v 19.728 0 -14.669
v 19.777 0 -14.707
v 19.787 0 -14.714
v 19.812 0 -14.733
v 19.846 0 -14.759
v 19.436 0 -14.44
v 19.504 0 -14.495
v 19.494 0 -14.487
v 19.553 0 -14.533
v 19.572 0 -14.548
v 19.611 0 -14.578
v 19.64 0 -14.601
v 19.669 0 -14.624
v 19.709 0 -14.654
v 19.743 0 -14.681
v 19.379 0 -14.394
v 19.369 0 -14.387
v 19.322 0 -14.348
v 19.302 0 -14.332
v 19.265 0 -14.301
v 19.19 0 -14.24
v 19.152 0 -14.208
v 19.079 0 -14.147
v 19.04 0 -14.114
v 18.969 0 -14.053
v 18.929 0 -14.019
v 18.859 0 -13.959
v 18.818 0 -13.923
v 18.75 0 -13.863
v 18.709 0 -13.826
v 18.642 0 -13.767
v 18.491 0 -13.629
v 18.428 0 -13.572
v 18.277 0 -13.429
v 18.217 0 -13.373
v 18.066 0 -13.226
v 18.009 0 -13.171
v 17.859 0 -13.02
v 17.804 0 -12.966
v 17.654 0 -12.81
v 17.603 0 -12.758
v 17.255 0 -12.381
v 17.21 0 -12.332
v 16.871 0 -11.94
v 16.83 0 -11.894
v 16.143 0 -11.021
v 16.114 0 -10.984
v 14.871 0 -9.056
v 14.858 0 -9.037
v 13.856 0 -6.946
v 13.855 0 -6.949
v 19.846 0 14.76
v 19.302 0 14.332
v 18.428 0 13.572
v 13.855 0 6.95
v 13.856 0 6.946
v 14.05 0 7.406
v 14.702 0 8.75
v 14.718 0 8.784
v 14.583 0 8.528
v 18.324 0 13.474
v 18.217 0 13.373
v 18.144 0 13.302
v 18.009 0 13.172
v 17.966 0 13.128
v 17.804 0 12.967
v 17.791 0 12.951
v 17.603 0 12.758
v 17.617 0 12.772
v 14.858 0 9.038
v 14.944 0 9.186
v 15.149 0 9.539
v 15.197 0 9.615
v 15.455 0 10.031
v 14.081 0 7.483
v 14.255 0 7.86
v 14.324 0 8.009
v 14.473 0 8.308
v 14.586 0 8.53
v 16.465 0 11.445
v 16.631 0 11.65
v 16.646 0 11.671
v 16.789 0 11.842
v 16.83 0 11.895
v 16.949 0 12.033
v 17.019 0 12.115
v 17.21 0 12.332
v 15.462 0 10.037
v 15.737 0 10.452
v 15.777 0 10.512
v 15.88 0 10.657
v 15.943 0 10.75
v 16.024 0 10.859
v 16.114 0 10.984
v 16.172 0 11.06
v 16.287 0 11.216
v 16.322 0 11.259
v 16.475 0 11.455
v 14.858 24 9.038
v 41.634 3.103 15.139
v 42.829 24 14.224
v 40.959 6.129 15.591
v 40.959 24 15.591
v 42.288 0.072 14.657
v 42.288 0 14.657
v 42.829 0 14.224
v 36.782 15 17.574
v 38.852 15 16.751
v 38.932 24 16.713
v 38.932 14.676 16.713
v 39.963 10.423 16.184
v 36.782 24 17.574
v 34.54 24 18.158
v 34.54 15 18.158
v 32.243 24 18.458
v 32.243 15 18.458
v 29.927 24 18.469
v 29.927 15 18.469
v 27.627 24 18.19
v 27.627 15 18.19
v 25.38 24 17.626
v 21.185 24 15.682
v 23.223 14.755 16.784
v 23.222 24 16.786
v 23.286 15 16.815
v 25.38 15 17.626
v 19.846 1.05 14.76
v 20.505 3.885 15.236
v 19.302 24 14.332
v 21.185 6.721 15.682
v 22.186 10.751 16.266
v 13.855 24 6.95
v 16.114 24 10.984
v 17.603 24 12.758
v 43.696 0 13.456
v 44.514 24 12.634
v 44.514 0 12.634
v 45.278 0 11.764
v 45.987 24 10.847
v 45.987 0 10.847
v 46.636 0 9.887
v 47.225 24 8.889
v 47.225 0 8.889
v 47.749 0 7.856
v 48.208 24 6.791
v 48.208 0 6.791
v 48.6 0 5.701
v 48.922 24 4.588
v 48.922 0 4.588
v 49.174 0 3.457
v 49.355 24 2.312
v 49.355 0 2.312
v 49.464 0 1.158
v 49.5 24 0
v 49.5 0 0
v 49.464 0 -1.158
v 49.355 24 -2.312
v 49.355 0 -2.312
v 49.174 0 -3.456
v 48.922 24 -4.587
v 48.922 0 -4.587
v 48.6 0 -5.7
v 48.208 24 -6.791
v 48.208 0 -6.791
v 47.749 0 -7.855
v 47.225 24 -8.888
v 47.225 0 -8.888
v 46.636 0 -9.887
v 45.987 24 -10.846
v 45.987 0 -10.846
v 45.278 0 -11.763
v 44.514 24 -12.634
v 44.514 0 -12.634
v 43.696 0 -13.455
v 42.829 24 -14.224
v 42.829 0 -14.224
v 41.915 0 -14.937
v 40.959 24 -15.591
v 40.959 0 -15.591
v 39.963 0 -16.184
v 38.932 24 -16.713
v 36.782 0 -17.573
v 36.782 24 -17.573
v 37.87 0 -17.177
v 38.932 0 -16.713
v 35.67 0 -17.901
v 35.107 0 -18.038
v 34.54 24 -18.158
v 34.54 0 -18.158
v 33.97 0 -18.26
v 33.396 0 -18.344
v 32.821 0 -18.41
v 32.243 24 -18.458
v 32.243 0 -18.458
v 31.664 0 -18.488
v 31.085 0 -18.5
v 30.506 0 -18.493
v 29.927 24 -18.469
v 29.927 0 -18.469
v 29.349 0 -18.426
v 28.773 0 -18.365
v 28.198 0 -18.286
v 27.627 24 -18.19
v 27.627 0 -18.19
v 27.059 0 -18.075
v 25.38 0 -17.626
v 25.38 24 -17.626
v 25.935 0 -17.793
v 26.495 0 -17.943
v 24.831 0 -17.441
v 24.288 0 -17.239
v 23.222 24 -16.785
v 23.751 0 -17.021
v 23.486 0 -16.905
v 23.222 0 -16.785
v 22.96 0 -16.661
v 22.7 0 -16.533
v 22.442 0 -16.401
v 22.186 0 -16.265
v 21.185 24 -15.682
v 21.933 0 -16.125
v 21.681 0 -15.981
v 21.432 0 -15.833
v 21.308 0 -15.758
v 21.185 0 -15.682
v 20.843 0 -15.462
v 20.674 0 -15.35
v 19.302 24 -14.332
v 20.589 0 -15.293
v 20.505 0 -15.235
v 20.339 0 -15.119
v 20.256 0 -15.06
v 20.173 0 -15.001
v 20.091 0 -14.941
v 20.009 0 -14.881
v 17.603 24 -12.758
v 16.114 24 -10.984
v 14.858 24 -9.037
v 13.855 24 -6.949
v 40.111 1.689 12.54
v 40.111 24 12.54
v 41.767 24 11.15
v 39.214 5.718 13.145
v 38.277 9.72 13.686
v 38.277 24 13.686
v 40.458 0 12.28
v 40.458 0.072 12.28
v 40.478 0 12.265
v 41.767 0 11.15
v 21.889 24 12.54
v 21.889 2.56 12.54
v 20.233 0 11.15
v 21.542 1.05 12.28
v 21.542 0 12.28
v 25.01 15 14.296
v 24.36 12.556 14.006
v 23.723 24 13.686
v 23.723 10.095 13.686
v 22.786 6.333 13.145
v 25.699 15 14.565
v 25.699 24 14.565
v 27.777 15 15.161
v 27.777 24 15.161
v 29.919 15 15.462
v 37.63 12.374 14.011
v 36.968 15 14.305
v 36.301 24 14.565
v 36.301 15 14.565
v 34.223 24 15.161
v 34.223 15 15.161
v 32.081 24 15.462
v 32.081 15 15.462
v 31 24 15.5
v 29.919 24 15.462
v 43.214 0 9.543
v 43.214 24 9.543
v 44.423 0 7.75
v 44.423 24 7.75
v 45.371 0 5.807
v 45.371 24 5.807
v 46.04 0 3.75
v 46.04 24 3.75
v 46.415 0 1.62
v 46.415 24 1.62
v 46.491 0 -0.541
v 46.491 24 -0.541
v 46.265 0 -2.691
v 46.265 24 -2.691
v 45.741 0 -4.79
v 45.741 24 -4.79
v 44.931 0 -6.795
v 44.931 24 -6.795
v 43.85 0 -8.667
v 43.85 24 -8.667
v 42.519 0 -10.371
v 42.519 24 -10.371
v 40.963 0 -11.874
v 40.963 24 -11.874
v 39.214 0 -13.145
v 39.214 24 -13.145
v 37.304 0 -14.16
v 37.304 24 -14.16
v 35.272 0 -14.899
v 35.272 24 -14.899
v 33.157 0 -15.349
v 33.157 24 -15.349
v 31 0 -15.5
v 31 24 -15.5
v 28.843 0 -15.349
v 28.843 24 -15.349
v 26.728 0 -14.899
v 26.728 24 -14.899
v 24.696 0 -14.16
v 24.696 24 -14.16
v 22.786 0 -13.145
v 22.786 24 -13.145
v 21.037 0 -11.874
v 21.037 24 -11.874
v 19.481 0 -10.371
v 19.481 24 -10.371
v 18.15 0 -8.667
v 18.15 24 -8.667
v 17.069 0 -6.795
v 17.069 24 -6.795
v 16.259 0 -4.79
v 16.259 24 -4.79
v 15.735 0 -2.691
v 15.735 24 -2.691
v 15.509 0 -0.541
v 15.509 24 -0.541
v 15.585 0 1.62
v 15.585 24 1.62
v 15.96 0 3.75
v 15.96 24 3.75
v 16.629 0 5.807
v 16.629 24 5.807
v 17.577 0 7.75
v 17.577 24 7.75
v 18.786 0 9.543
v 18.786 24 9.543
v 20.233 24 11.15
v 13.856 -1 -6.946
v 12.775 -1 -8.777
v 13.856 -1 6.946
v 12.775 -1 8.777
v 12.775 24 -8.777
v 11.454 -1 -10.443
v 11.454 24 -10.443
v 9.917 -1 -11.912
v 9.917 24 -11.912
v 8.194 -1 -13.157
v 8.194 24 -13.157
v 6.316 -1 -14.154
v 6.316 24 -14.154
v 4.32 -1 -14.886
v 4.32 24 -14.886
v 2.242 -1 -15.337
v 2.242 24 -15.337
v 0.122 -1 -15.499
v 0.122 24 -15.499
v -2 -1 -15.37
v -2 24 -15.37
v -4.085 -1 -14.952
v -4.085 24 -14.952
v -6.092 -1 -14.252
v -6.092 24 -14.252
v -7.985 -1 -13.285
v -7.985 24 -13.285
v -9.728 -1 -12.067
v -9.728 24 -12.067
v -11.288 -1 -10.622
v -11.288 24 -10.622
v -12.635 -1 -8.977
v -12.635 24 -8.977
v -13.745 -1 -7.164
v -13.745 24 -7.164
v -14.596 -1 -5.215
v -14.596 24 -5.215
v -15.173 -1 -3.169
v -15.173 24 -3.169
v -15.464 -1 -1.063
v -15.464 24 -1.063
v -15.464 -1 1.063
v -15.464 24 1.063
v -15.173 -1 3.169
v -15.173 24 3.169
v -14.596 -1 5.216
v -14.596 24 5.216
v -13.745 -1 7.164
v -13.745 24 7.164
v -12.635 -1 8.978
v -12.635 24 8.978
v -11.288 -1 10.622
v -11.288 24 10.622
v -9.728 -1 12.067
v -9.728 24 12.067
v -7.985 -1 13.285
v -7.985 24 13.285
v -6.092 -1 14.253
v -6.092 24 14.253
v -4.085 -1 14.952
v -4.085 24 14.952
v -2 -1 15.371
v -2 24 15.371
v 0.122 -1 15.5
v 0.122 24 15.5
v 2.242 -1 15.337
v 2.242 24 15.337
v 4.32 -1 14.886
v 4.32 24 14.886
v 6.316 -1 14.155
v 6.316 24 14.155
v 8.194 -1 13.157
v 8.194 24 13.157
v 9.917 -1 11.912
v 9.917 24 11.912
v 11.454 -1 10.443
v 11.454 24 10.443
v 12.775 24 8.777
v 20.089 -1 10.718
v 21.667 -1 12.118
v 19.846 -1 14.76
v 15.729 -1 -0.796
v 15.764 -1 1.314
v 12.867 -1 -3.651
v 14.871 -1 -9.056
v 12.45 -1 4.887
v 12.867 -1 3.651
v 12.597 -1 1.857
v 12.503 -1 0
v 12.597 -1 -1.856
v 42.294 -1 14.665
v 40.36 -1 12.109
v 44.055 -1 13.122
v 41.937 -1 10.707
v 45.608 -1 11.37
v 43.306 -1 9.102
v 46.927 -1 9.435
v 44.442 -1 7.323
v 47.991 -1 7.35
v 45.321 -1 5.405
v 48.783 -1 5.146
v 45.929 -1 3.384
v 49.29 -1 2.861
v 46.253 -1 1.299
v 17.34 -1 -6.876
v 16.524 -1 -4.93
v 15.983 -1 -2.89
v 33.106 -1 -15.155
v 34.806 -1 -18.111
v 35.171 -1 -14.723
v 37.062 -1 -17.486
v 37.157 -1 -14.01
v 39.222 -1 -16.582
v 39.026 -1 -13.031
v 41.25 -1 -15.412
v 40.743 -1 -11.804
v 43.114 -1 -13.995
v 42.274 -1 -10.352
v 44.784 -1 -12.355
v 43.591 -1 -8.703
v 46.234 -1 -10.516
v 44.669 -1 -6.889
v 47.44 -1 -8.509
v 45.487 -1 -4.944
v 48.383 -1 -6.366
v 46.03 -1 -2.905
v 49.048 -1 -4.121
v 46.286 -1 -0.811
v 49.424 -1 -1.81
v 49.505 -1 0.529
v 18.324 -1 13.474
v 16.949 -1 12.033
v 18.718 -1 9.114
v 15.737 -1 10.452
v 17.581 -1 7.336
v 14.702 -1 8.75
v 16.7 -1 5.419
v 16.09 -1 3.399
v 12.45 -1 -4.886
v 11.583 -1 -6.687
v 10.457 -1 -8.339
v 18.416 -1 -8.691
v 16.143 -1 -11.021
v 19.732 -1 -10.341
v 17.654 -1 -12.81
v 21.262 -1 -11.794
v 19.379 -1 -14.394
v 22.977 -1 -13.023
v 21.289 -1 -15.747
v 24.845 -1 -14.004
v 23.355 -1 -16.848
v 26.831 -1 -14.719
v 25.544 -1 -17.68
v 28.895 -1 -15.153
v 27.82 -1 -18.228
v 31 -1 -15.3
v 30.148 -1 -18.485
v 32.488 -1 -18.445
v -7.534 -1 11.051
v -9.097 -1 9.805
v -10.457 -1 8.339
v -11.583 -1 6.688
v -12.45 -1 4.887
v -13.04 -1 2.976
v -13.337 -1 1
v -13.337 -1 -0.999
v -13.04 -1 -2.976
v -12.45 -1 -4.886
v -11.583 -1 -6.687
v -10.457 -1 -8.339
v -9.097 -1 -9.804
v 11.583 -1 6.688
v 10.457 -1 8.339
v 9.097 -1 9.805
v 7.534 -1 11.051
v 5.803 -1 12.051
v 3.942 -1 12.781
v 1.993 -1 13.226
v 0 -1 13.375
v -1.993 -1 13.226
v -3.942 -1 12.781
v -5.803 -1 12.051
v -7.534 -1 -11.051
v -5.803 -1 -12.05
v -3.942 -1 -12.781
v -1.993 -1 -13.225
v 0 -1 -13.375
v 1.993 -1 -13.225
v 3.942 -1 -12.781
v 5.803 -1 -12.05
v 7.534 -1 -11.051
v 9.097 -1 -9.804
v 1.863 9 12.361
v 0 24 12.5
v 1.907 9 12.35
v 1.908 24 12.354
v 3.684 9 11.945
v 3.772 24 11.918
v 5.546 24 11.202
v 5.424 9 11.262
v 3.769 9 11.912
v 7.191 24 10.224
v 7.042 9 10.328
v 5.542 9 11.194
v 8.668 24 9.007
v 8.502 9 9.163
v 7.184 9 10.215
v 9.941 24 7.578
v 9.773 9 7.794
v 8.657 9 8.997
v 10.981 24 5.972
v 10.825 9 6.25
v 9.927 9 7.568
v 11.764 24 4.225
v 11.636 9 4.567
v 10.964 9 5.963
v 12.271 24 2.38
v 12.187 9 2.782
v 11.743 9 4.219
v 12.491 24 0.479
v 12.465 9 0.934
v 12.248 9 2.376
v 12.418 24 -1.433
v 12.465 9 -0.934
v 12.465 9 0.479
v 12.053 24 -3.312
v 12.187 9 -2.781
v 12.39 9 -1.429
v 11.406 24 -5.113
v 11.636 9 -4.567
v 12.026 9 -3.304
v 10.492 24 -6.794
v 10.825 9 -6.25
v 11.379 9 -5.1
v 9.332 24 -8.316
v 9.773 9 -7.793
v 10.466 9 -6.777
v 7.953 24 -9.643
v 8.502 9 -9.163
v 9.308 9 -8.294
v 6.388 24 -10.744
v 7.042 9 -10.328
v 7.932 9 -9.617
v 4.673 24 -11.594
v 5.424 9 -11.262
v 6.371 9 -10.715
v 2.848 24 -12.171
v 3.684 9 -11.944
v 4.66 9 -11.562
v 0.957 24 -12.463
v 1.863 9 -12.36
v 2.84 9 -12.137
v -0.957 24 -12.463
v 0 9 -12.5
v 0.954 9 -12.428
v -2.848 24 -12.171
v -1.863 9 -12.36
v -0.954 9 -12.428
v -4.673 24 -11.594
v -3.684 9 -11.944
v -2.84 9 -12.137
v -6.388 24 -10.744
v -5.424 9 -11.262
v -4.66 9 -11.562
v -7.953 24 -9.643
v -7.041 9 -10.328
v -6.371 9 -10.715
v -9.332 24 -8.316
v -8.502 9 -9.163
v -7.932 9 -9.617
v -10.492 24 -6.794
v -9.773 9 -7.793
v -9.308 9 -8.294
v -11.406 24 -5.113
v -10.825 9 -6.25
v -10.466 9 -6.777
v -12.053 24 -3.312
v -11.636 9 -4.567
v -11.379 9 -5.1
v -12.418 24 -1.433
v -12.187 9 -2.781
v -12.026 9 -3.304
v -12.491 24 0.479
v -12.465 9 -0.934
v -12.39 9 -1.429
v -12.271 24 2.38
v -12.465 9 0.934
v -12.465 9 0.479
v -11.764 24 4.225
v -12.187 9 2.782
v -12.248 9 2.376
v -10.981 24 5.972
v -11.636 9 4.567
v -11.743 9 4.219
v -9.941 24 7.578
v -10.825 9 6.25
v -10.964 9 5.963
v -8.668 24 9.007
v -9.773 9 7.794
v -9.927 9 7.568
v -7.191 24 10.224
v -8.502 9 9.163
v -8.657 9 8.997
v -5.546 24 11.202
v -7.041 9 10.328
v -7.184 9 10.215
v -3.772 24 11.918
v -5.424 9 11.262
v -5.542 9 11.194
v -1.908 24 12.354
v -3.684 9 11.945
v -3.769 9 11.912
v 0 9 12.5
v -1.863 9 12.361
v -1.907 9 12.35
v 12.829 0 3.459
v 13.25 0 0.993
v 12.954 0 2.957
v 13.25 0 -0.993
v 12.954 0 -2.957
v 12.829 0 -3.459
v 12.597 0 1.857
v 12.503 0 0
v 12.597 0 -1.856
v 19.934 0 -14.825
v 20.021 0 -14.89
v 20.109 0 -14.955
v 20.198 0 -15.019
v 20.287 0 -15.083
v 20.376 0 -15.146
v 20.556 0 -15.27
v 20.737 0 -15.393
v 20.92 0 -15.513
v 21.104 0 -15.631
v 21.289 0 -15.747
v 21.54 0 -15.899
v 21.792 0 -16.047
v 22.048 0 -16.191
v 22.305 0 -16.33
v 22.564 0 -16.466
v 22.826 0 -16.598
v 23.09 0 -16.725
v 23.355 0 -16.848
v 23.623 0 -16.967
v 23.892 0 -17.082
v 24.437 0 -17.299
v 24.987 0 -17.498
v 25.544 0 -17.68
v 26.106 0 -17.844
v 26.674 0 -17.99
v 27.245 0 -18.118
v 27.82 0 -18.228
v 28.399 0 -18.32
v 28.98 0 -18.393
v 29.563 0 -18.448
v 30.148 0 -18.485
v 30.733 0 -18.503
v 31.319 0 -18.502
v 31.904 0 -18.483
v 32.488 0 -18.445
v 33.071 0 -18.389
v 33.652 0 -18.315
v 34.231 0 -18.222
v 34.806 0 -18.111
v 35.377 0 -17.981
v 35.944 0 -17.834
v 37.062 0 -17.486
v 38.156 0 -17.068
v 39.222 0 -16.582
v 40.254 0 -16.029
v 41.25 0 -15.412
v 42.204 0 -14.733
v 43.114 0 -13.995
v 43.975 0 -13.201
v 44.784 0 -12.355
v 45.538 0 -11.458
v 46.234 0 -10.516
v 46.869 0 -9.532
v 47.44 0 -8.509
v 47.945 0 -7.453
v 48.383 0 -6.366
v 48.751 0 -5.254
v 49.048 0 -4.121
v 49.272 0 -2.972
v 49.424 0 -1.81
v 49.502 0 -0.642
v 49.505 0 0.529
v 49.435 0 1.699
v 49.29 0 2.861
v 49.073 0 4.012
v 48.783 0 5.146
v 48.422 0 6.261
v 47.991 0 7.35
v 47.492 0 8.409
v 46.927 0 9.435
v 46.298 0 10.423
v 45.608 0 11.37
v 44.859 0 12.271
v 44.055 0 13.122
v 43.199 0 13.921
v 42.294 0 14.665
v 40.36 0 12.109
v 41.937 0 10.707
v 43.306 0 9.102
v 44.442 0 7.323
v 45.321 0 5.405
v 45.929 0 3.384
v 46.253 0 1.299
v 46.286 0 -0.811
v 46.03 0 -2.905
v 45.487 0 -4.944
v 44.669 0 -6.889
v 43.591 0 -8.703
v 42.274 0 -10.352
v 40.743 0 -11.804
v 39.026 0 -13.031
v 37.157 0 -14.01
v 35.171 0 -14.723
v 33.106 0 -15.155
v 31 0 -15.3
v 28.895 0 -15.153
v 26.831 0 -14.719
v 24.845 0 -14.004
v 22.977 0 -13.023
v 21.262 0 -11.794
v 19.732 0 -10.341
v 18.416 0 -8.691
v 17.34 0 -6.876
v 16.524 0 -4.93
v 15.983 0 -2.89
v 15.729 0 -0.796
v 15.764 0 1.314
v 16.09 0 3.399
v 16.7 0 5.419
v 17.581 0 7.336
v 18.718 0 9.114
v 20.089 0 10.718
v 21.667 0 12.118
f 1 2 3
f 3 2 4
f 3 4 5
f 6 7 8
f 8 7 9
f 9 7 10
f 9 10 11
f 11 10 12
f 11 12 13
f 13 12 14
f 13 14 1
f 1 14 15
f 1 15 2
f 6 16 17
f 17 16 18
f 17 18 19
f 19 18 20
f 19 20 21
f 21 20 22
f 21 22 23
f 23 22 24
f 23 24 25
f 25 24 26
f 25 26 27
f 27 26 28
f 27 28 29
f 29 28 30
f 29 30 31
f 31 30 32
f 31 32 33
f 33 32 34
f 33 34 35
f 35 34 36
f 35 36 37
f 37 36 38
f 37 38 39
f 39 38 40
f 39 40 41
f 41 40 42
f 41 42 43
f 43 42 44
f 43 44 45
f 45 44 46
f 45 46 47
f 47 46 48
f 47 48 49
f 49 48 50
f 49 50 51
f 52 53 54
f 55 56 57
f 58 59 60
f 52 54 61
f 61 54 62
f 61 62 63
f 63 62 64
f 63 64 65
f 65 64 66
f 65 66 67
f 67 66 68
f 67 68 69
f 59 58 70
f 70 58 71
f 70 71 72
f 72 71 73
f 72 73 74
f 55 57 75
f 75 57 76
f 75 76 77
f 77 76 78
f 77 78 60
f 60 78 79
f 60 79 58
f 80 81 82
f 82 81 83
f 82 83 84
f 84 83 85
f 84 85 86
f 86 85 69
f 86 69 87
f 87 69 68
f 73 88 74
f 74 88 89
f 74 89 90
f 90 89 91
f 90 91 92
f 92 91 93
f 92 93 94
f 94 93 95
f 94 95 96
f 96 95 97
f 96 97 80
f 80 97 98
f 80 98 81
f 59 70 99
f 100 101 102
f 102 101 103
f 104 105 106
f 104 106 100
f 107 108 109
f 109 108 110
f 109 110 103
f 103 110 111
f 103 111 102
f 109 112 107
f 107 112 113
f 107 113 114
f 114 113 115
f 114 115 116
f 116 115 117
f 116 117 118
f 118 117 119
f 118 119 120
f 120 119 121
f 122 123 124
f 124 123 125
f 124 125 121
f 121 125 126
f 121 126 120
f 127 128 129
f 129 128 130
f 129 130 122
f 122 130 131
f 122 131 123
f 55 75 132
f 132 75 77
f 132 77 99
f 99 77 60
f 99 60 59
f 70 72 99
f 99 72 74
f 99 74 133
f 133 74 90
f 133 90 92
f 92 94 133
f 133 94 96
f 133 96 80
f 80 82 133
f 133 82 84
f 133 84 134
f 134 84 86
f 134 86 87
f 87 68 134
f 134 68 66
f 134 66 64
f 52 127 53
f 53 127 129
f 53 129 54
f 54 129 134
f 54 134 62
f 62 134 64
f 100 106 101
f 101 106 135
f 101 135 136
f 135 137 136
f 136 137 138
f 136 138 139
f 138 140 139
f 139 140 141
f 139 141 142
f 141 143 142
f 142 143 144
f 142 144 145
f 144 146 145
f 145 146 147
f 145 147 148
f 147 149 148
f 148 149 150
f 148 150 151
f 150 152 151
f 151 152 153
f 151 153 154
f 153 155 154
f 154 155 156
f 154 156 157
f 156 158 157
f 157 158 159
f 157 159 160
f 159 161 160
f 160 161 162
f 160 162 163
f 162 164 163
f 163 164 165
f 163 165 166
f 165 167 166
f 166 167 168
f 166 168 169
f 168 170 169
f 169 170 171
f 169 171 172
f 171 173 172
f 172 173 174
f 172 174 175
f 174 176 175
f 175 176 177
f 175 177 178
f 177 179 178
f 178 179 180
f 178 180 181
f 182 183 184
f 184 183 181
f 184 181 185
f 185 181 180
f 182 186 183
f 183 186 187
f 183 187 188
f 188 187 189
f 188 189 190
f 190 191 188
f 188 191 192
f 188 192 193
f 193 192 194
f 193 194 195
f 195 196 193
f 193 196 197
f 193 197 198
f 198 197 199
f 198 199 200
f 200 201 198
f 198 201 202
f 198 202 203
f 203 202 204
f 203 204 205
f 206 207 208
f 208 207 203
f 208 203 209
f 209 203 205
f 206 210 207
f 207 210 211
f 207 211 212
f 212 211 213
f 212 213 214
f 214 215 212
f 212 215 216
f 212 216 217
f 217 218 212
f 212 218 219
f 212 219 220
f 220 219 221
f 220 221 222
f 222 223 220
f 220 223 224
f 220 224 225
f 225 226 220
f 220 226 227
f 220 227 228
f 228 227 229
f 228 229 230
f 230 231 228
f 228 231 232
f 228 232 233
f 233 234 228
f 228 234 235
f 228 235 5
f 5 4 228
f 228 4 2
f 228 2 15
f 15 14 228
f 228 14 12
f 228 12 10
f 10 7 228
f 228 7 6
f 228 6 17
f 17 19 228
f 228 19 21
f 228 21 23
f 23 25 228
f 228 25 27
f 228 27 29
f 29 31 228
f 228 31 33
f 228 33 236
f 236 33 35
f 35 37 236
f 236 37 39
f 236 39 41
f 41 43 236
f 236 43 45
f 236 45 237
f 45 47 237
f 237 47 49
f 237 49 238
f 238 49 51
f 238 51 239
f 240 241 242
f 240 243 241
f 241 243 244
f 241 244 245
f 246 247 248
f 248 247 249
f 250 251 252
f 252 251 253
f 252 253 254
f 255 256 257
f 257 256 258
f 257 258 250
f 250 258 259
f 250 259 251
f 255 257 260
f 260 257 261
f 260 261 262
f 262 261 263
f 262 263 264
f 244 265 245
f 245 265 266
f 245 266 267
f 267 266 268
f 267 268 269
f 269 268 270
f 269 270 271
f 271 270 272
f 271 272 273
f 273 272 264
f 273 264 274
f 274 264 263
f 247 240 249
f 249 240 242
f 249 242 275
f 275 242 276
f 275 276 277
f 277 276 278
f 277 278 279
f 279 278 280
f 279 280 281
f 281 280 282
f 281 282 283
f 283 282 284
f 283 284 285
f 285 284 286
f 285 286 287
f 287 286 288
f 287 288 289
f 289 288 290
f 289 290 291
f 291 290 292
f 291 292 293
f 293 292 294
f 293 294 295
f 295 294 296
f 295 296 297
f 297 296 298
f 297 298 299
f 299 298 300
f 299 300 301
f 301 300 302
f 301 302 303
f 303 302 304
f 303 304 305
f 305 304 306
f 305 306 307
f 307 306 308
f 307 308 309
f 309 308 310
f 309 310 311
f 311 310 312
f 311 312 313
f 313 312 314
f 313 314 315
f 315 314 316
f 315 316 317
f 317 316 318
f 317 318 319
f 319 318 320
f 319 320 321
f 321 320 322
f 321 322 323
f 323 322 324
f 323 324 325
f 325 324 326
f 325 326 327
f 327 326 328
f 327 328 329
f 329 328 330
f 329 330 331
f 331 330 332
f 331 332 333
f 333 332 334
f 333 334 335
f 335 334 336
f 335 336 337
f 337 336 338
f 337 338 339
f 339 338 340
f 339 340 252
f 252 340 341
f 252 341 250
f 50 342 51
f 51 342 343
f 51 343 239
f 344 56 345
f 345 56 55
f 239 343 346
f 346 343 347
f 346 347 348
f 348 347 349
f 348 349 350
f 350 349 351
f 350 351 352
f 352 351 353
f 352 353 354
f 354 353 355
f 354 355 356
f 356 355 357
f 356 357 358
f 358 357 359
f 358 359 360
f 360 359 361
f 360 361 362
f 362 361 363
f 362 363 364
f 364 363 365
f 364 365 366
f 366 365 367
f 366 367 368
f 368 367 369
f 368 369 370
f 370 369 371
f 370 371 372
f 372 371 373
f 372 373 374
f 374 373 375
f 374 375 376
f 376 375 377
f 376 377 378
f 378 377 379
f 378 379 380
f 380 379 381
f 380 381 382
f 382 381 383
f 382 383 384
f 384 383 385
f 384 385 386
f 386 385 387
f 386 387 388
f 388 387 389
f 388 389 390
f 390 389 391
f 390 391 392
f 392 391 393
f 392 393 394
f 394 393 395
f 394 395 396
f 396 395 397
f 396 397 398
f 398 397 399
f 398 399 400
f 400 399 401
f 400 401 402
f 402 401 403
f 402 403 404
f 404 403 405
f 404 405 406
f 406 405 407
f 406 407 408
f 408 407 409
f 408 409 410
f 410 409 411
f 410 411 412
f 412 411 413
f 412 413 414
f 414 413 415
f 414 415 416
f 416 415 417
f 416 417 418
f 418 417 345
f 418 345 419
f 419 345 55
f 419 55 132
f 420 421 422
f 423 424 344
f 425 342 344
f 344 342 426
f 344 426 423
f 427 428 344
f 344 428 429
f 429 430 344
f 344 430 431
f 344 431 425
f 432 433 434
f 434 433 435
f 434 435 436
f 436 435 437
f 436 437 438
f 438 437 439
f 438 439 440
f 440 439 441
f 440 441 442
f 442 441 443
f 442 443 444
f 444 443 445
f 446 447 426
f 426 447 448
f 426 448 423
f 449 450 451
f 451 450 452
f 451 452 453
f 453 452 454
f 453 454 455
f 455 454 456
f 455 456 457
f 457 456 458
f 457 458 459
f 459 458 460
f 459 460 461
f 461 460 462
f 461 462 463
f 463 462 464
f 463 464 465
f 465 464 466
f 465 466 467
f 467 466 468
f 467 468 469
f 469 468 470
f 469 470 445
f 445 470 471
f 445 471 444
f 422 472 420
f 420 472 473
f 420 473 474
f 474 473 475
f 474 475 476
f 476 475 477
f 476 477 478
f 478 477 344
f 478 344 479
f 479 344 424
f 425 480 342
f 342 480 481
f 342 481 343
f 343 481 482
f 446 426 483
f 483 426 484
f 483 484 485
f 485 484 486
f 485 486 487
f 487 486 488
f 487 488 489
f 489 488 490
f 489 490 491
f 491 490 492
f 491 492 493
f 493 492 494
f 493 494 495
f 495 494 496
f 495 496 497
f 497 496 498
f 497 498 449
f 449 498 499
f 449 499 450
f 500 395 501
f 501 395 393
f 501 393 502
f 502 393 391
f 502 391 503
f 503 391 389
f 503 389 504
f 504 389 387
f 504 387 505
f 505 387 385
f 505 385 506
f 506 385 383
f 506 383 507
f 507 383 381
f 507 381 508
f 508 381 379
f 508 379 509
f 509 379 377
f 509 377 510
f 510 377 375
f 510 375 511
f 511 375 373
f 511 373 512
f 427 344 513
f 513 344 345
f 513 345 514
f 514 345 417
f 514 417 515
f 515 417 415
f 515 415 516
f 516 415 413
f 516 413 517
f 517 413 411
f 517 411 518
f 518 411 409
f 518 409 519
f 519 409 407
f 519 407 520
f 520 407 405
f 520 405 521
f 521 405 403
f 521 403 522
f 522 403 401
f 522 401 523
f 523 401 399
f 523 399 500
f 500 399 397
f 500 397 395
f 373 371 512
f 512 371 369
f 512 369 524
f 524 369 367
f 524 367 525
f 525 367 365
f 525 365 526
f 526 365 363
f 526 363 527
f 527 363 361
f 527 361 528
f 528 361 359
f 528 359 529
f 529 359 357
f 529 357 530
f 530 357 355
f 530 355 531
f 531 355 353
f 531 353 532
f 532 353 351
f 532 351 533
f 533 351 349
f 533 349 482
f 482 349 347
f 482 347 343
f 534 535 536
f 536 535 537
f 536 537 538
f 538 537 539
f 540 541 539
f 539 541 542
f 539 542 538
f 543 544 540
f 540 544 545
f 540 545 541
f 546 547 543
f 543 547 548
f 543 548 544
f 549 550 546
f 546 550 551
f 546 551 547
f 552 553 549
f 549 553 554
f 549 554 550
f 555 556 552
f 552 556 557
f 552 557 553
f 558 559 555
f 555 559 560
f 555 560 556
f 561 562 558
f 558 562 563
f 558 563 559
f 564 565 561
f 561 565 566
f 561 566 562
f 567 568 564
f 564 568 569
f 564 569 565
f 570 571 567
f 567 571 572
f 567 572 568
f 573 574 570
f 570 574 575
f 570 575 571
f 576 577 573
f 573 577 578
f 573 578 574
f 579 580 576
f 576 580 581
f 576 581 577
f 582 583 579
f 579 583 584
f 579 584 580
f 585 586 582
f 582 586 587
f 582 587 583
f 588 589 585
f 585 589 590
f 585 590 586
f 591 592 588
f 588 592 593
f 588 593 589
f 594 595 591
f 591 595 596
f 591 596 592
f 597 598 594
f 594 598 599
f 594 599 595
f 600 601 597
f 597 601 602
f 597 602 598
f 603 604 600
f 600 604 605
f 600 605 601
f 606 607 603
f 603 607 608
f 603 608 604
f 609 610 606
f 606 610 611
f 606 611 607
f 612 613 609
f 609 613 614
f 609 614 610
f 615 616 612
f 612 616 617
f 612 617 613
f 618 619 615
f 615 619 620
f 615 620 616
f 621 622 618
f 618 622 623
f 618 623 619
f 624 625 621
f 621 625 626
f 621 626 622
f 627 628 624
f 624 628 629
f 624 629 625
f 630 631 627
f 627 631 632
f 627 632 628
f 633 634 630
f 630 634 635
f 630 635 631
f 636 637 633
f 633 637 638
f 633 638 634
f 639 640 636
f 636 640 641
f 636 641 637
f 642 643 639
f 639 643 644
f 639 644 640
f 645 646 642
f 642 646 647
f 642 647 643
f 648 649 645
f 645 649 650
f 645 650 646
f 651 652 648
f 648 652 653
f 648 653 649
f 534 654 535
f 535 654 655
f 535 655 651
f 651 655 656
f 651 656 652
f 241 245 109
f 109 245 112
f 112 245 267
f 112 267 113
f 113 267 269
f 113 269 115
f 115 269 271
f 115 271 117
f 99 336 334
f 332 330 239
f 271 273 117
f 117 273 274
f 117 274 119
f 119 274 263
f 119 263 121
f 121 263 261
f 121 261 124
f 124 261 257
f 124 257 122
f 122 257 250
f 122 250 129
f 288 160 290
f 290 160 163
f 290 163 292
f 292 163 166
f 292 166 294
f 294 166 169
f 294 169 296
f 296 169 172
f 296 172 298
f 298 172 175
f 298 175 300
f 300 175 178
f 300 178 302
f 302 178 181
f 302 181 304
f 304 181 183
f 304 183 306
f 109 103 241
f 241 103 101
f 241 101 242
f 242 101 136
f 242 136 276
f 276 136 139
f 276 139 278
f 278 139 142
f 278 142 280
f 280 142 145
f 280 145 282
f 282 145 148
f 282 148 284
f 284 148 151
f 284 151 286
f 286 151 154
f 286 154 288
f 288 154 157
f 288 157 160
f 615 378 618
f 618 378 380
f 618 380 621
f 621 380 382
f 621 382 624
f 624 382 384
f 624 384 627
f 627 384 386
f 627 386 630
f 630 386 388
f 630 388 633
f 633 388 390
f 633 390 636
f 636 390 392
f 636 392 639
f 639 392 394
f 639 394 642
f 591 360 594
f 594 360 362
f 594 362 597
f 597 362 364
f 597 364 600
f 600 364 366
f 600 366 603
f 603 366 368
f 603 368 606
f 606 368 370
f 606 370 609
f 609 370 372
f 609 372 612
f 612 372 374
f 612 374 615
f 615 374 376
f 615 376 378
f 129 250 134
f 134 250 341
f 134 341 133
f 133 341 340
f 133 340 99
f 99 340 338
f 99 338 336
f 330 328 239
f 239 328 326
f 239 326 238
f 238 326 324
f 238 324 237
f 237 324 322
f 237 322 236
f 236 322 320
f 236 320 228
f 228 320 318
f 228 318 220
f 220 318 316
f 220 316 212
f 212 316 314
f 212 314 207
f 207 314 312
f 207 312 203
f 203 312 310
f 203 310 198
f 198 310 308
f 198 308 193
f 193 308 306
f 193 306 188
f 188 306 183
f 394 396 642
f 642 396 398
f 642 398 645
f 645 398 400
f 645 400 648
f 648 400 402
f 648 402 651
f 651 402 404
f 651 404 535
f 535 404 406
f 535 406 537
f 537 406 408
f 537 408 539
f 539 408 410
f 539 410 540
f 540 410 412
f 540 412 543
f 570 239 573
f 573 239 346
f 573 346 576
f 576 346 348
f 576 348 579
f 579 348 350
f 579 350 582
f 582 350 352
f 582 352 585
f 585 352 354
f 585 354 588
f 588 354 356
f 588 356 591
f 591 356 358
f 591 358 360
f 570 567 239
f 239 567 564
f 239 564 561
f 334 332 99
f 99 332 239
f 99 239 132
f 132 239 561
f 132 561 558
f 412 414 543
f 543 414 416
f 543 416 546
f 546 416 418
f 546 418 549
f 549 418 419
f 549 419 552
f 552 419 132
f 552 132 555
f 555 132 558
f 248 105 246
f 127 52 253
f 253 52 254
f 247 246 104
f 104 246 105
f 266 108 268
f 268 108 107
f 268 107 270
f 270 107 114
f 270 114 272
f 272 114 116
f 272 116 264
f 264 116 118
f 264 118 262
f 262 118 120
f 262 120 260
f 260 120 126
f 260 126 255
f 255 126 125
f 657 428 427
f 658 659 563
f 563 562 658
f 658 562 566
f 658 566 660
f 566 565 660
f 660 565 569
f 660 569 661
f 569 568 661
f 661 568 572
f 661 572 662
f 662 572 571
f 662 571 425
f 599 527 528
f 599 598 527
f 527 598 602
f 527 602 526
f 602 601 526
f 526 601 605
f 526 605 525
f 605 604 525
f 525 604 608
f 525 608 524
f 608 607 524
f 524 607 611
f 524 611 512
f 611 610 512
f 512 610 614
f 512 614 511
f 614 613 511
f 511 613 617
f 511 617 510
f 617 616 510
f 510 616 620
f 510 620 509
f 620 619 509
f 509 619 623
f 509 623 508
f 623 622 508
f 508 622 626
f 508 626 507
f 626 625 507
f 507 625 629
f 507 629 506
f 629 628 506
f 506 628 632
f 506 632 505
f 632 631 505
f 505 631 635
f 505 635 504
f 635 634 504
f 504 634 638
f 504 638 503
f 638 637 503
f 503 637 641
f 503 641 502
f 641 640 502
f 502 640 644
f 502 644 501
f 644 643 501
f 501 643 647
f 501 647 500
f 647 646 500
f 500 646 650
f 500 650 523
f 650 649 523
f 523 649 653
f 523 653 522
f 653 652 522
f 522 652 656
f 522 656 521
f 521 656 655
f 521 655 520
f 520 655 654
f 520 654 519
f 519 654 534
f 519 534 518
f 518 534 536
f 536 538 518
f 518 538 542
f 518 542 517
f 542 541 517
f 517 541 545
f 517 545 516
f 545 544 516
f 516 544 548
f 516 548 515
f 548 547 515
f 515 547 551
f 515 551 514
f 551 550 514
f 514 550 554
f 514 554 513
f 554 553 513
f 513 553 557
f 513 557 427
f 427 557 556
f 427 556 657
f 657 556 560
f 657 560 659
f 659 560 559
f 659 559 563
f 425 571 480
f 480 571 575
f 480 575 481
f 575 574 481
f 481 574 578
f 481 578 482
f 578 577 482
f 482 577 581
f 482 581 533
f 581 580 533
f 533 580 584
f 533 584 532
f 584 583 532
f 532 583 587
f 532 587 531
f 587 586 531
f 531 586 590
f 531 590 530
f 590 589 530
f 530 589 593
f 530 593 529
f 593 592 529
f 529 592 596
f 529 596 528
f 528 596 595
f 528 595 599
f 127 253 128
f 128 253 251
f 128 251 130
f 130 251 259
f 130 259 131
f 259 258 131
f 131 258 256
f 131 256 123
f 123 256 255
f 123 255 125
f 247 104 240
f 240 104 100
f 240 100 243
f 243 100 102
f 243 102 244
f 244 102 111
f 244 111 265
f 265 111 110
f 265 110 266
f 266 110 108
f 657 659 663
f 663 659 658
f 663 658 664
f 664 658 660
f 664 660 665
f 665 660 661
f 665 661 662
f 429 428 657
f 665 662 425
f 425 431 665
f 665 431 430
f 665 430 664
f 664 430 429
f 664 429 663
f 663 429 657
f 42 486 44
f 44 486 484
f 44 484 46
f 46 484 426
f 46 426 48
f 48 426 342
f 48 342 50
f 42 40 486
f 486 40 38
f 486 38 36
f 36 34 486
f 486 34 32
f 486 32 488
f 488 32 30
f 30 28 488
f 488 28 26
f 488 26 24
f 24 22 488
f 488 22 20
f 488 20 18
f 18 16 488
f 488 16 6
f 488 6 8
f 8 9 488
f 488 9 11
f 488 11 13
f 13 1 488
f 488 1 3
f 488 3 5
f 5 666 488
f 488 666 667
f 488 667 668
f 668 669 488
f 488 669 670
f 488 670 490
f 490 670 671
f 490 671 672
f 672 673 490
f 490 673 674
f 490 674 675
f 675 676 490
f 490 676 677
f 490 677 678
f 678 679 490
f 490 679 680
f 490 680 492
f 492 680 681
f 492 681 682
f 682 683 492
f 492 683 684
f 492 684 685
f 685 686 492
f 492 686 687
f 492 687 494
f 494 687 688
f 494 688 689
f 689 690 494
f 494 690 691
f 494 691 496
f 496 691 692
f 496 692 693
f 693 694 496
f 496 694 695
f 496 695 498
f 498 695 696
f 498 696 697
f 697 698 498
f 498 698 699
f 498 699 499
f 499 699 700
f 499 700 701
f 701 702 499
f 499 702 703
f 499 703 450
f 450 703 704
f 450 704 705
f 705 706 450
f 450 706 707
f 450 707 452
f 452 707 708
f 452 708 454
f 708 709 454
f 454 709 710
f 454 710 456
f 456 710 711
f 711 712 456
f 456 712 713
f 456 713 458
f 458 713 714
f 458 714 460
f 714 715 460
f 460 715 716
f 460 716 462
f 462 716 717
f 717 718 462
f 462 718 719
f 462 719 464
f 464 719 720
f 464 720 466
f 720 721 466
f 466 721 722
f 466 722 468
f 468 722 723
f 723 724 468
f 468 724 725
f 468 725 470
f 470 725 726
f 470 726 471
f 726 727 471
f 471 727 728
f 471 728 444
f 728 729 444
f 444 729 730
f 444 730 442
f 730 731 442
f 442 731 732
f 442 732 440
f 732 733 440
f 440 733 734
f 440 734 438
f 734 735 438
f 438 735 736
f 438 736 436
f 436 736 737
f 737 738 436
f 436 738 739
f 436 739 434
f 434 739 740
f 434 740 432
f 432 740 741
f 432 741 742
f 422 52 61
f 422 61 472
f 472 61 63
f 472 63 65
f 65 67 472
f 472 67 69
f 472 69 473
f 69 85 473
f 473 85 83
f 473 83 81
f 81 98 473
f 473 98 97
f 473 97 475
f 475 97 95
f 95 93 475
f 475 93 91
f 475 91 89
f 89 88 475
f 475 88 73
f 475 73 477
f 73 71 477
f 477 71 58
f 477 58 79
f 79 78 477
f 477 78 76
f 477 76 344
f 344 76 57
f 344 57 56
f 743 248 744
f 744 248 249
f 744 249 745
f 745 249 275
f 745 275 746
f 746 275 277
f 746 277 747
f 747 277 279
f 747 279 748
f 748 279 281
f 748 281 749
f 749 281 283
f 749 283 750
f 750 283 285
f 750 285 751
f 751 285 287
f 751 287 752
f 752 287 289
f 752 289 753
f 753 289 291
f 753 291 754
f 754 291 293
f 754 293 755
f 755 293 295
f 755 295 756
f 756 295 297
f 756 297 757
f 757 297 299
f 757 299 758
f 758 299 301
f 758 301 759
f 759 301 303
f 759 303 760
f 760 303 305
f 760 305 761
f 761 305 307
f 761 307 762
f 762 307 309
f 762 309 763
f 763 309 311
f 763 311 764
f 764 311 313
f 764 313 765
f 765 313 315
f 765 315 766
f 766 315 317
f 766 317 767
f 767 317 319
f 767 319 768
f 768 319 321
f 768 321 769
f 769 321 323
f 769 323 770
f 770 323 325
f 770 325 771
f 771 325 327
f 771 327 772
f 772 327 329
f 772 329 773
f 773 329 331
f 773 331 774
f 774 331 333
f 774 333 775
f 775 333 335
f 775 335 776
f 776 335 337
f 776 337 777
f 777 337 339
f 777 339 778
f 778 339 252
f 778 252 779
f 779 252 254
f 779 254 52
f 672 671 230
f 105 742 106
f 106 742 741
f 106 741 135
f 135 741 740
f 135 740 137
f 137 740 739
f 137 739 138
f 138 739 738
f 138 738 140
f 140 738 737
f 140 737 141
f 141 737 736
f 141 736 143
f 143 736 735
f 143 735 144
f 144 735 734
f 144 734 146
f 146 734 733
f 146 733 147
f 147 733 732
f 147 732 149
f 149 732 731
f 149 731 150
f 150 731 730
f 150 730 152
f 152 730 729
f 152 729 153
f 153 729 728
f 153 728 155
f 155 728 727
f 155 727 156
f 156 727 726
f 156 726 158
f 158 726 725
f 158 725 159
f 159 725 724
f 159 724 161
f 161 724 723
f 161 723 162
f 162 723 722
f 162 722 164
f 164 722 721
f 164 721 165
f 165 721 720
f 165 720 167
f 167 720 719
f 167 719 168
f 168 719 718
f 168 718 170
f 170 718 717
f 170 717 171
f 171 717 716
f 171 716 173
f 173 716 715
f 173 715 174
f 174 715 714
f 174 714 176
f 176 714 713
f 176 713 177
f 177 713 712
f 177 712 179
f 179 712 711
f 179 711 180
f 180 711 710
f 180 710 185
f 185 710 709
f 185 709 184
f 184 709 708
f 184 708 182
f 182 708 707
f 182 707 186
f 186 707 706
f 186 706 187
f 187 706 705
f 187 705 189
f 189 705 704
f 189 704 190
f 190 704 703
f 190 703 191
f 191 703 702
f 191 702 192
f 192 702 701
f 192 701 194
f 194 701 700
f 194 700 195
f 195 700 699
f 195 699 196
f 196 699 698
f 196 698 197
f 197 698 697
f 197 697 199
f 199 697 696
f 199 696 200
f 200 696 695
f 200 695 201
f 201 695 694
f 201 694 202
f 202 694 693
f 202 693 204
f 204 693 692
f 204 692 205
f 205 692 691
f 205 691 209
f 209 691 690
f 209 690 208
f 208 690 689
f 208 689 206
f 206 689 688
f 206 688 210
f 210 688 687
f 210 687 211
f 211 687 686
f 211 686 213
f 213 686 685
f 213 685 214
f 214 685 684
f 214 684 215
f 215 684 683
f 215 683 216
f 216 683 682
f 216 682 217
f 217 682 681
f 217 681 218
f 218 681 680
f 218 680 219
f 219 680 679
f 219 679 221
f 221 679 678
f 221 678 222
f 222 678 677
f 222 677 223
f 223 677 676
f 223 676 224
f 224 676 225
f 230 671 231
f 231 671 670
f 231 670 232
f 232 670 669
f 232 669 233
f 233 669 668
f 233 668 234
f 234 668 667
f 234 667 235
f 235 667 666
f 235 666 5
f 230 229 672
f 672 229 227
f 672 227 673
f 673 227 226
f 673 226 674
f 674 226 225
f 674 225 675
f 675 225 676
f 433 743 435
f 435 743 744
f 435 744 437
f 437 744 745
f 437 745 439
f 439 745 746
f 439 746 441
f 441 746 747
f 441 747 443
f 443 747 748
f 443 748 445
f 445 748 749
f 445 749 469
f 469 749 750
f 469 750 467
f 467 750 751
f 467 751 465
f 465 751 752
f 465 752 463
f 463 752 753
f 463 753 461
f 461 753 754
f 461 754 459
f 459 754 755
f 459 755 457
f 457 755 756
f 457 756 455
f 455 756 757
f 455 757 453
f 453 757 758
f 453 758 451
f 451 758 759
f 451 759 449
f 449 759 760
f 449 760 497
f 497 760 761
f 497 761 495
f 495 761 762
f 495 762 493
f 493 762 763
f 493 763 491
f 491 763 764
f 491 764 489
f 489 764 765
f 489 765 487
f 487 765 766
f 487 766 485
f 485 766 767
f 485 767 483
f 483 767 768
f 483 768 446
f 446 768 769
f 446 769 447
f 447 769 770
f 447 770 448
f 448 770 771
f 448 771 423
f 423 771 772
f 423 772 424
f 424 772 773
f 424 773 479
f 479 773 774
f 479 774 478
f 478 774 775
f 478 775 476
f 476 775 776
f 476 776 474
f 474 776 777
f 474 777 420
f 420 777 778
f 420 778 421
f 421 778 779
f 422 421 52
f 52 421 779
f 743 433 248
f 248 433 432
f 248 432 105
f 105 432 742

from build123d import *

# Parameters (mm, degrees)
BOSS_EXTRU_6_DEPTH      = 24
BOSS_EXTRU_6_DEPTH_BACK = 1
ESQUISSE2_R             = 15.5
ESQUISSE2_R_2           = 12.5
ESQUISSE3_R             = 18.5
ESQUISSE3_R_2           = 15.5
BOSS_EXTRU_7_DEPTH      = 24
ENL_V_MAT_EXTRU_4_DEPTH = 15
CHANFREIN3_SIZE         = 10
CHANFREIN3_SIZE2        = 0.874886635
CHANFREIN4_SIZE         = 4
CHANFREIN4_SIZE2        = 13.949657775
CHANFREIN5_SIZE         = 4
CHANFREIN5_SIZE2        = 14.92820323
BOSS_EXTRU_9_DEPTH      = 1


with BuildPart() as part:
    # Esquisse2 → Boss.-Extru.6 (new, two sides: drawn at the far end of the back side and taken through both)
    with BuildSketch(Plane(origin=(0, 0, 0), x_dir=(1, 0, 0), z_dir=(0, 1, 0)).offset(-BOSS_EXTRU_6_DEPTH_BACK)):
        Circle(ESQUISSE2_R)
        Circle(ESQUISSE2_R_2, mode=Mode.SUBTRACT)
    extrude(amount=BOSS_EXTRU_6_DEPTH + BOSS_EXTRU_6_DEPTH_BACK)

    # Esquisse3 → Boss.-Extru.7 (add)
    with BuildSketch(Plane(origin=(0, 0, 0), x_dir=(1, 0, 0), z_dir=(0, 1, 0))):
        with Locations((31, 0)):
            Circle(ESQUISSE3_R)
        with Locations((31, 0)):
            Circle(ESQUISSE3_R_2, mode=Mode.SUBTRACT)
    extrude(amount=BOSS_EXTRU_7_DEPTH)

    # Esquisse6 → Enlèv. mat.-Extru.4 (cut)
    with BuildSketch(Plane(origin=(0, 0, 0), x_dir=(1, 0, 0), z_dir=(0, 1, 0))):
        with BuildLine():
            ThreePointArc((40.457589045, -12.280228396), (31, -15.5), (21.542410955, -12.280228396))
            Line((21.542410955, -12.280228396), (19.846119293, -14.759435801))
            ThreePointArc((19.846119293, -14.759435801), (31.084403323, -18.499807461), (42.288090151, -14.657046795))
            Line((42.288090151, -14.657046795), (40.457589045, -12.280228396))
        make_face()
    extrude(amount=ENL_V_MAT_EXTRU_4_DEPTH, mode=Mode.SUBTRACT)

    # Chanfrein3
    chanfrein3_edges = [part.edges().sort_by_distance(p)[0] for p in [
        (-12.5, -1, 0),
    ]]
    chanfrein3_side = [part.faces().sort_by_distance(p)[0] for p in [
        (-12.5, 11.5, 0),
    ]]
    chamfer(chanfrein3_edges, length=CHANFREIN3_SIZE, length2=CHANFREIN3_SIZE2, reference=chanfrein3_side[0])

    # Chanfrein4
    chanfrein4_edges = [part.edges().sort_by_distance(p)[0] for p in [
        (20.694265124, 15, 13.519832098),
    ]]
    chanfrein4_side = [part.faces().sort_by_distance(p)[0] for p in [
        (31.040377675, 15, 15.854130796),
    ]]
    chamfer(chanfrein4_edges, length=CHANFREIN4_SIZE, length2=CHANFREIN4_SIZE2, reference=chanfrein4_side[0])

    # Chanfrein5
    chanfrein5_edges = [part.edges().sort_by_distance(p)[0] for p in [
        (41.372839598, 15, 13.468637595),
    ]]
    chanfrein5_side = [part.faces().sort_by_distance(p)[0] for p in [
        (32.951306309, 15, 16.129493261),
    ]]
    chamfer(chanfrein5_edges, length=CHANFREIN5_SIZE, length2=CHANFREIN5_SIZE2, reference=chanfrein5_side[0])

    # Esquisse18 → Boss.-Extru.9 (add)
    with BuildSketch(Plane(origin=(0, 0, 0), x_dir=(1, 0, 0), z_dir=(0, 1, 0))):
        with BuildLine():
            Line((40.360227094, -12.108845331), (42.293943816, -14.6646475))
            ThreePointArc((42.293943816, -14.6646475), (30.929770772, 18.504604183), (19.846119293, -14.759435801))
            Line((19.846119293, -14.759435801), (21.667455033, -12.118000277))
            ThreePointArc((21.667455033, -12.118000277), (31.000415105, 15.299998165), (40.360227094, -12.108845331))
        make_face()
    extrude(amount=-BOSS_EXTRU_9_DEPTH)


solid = part.part
